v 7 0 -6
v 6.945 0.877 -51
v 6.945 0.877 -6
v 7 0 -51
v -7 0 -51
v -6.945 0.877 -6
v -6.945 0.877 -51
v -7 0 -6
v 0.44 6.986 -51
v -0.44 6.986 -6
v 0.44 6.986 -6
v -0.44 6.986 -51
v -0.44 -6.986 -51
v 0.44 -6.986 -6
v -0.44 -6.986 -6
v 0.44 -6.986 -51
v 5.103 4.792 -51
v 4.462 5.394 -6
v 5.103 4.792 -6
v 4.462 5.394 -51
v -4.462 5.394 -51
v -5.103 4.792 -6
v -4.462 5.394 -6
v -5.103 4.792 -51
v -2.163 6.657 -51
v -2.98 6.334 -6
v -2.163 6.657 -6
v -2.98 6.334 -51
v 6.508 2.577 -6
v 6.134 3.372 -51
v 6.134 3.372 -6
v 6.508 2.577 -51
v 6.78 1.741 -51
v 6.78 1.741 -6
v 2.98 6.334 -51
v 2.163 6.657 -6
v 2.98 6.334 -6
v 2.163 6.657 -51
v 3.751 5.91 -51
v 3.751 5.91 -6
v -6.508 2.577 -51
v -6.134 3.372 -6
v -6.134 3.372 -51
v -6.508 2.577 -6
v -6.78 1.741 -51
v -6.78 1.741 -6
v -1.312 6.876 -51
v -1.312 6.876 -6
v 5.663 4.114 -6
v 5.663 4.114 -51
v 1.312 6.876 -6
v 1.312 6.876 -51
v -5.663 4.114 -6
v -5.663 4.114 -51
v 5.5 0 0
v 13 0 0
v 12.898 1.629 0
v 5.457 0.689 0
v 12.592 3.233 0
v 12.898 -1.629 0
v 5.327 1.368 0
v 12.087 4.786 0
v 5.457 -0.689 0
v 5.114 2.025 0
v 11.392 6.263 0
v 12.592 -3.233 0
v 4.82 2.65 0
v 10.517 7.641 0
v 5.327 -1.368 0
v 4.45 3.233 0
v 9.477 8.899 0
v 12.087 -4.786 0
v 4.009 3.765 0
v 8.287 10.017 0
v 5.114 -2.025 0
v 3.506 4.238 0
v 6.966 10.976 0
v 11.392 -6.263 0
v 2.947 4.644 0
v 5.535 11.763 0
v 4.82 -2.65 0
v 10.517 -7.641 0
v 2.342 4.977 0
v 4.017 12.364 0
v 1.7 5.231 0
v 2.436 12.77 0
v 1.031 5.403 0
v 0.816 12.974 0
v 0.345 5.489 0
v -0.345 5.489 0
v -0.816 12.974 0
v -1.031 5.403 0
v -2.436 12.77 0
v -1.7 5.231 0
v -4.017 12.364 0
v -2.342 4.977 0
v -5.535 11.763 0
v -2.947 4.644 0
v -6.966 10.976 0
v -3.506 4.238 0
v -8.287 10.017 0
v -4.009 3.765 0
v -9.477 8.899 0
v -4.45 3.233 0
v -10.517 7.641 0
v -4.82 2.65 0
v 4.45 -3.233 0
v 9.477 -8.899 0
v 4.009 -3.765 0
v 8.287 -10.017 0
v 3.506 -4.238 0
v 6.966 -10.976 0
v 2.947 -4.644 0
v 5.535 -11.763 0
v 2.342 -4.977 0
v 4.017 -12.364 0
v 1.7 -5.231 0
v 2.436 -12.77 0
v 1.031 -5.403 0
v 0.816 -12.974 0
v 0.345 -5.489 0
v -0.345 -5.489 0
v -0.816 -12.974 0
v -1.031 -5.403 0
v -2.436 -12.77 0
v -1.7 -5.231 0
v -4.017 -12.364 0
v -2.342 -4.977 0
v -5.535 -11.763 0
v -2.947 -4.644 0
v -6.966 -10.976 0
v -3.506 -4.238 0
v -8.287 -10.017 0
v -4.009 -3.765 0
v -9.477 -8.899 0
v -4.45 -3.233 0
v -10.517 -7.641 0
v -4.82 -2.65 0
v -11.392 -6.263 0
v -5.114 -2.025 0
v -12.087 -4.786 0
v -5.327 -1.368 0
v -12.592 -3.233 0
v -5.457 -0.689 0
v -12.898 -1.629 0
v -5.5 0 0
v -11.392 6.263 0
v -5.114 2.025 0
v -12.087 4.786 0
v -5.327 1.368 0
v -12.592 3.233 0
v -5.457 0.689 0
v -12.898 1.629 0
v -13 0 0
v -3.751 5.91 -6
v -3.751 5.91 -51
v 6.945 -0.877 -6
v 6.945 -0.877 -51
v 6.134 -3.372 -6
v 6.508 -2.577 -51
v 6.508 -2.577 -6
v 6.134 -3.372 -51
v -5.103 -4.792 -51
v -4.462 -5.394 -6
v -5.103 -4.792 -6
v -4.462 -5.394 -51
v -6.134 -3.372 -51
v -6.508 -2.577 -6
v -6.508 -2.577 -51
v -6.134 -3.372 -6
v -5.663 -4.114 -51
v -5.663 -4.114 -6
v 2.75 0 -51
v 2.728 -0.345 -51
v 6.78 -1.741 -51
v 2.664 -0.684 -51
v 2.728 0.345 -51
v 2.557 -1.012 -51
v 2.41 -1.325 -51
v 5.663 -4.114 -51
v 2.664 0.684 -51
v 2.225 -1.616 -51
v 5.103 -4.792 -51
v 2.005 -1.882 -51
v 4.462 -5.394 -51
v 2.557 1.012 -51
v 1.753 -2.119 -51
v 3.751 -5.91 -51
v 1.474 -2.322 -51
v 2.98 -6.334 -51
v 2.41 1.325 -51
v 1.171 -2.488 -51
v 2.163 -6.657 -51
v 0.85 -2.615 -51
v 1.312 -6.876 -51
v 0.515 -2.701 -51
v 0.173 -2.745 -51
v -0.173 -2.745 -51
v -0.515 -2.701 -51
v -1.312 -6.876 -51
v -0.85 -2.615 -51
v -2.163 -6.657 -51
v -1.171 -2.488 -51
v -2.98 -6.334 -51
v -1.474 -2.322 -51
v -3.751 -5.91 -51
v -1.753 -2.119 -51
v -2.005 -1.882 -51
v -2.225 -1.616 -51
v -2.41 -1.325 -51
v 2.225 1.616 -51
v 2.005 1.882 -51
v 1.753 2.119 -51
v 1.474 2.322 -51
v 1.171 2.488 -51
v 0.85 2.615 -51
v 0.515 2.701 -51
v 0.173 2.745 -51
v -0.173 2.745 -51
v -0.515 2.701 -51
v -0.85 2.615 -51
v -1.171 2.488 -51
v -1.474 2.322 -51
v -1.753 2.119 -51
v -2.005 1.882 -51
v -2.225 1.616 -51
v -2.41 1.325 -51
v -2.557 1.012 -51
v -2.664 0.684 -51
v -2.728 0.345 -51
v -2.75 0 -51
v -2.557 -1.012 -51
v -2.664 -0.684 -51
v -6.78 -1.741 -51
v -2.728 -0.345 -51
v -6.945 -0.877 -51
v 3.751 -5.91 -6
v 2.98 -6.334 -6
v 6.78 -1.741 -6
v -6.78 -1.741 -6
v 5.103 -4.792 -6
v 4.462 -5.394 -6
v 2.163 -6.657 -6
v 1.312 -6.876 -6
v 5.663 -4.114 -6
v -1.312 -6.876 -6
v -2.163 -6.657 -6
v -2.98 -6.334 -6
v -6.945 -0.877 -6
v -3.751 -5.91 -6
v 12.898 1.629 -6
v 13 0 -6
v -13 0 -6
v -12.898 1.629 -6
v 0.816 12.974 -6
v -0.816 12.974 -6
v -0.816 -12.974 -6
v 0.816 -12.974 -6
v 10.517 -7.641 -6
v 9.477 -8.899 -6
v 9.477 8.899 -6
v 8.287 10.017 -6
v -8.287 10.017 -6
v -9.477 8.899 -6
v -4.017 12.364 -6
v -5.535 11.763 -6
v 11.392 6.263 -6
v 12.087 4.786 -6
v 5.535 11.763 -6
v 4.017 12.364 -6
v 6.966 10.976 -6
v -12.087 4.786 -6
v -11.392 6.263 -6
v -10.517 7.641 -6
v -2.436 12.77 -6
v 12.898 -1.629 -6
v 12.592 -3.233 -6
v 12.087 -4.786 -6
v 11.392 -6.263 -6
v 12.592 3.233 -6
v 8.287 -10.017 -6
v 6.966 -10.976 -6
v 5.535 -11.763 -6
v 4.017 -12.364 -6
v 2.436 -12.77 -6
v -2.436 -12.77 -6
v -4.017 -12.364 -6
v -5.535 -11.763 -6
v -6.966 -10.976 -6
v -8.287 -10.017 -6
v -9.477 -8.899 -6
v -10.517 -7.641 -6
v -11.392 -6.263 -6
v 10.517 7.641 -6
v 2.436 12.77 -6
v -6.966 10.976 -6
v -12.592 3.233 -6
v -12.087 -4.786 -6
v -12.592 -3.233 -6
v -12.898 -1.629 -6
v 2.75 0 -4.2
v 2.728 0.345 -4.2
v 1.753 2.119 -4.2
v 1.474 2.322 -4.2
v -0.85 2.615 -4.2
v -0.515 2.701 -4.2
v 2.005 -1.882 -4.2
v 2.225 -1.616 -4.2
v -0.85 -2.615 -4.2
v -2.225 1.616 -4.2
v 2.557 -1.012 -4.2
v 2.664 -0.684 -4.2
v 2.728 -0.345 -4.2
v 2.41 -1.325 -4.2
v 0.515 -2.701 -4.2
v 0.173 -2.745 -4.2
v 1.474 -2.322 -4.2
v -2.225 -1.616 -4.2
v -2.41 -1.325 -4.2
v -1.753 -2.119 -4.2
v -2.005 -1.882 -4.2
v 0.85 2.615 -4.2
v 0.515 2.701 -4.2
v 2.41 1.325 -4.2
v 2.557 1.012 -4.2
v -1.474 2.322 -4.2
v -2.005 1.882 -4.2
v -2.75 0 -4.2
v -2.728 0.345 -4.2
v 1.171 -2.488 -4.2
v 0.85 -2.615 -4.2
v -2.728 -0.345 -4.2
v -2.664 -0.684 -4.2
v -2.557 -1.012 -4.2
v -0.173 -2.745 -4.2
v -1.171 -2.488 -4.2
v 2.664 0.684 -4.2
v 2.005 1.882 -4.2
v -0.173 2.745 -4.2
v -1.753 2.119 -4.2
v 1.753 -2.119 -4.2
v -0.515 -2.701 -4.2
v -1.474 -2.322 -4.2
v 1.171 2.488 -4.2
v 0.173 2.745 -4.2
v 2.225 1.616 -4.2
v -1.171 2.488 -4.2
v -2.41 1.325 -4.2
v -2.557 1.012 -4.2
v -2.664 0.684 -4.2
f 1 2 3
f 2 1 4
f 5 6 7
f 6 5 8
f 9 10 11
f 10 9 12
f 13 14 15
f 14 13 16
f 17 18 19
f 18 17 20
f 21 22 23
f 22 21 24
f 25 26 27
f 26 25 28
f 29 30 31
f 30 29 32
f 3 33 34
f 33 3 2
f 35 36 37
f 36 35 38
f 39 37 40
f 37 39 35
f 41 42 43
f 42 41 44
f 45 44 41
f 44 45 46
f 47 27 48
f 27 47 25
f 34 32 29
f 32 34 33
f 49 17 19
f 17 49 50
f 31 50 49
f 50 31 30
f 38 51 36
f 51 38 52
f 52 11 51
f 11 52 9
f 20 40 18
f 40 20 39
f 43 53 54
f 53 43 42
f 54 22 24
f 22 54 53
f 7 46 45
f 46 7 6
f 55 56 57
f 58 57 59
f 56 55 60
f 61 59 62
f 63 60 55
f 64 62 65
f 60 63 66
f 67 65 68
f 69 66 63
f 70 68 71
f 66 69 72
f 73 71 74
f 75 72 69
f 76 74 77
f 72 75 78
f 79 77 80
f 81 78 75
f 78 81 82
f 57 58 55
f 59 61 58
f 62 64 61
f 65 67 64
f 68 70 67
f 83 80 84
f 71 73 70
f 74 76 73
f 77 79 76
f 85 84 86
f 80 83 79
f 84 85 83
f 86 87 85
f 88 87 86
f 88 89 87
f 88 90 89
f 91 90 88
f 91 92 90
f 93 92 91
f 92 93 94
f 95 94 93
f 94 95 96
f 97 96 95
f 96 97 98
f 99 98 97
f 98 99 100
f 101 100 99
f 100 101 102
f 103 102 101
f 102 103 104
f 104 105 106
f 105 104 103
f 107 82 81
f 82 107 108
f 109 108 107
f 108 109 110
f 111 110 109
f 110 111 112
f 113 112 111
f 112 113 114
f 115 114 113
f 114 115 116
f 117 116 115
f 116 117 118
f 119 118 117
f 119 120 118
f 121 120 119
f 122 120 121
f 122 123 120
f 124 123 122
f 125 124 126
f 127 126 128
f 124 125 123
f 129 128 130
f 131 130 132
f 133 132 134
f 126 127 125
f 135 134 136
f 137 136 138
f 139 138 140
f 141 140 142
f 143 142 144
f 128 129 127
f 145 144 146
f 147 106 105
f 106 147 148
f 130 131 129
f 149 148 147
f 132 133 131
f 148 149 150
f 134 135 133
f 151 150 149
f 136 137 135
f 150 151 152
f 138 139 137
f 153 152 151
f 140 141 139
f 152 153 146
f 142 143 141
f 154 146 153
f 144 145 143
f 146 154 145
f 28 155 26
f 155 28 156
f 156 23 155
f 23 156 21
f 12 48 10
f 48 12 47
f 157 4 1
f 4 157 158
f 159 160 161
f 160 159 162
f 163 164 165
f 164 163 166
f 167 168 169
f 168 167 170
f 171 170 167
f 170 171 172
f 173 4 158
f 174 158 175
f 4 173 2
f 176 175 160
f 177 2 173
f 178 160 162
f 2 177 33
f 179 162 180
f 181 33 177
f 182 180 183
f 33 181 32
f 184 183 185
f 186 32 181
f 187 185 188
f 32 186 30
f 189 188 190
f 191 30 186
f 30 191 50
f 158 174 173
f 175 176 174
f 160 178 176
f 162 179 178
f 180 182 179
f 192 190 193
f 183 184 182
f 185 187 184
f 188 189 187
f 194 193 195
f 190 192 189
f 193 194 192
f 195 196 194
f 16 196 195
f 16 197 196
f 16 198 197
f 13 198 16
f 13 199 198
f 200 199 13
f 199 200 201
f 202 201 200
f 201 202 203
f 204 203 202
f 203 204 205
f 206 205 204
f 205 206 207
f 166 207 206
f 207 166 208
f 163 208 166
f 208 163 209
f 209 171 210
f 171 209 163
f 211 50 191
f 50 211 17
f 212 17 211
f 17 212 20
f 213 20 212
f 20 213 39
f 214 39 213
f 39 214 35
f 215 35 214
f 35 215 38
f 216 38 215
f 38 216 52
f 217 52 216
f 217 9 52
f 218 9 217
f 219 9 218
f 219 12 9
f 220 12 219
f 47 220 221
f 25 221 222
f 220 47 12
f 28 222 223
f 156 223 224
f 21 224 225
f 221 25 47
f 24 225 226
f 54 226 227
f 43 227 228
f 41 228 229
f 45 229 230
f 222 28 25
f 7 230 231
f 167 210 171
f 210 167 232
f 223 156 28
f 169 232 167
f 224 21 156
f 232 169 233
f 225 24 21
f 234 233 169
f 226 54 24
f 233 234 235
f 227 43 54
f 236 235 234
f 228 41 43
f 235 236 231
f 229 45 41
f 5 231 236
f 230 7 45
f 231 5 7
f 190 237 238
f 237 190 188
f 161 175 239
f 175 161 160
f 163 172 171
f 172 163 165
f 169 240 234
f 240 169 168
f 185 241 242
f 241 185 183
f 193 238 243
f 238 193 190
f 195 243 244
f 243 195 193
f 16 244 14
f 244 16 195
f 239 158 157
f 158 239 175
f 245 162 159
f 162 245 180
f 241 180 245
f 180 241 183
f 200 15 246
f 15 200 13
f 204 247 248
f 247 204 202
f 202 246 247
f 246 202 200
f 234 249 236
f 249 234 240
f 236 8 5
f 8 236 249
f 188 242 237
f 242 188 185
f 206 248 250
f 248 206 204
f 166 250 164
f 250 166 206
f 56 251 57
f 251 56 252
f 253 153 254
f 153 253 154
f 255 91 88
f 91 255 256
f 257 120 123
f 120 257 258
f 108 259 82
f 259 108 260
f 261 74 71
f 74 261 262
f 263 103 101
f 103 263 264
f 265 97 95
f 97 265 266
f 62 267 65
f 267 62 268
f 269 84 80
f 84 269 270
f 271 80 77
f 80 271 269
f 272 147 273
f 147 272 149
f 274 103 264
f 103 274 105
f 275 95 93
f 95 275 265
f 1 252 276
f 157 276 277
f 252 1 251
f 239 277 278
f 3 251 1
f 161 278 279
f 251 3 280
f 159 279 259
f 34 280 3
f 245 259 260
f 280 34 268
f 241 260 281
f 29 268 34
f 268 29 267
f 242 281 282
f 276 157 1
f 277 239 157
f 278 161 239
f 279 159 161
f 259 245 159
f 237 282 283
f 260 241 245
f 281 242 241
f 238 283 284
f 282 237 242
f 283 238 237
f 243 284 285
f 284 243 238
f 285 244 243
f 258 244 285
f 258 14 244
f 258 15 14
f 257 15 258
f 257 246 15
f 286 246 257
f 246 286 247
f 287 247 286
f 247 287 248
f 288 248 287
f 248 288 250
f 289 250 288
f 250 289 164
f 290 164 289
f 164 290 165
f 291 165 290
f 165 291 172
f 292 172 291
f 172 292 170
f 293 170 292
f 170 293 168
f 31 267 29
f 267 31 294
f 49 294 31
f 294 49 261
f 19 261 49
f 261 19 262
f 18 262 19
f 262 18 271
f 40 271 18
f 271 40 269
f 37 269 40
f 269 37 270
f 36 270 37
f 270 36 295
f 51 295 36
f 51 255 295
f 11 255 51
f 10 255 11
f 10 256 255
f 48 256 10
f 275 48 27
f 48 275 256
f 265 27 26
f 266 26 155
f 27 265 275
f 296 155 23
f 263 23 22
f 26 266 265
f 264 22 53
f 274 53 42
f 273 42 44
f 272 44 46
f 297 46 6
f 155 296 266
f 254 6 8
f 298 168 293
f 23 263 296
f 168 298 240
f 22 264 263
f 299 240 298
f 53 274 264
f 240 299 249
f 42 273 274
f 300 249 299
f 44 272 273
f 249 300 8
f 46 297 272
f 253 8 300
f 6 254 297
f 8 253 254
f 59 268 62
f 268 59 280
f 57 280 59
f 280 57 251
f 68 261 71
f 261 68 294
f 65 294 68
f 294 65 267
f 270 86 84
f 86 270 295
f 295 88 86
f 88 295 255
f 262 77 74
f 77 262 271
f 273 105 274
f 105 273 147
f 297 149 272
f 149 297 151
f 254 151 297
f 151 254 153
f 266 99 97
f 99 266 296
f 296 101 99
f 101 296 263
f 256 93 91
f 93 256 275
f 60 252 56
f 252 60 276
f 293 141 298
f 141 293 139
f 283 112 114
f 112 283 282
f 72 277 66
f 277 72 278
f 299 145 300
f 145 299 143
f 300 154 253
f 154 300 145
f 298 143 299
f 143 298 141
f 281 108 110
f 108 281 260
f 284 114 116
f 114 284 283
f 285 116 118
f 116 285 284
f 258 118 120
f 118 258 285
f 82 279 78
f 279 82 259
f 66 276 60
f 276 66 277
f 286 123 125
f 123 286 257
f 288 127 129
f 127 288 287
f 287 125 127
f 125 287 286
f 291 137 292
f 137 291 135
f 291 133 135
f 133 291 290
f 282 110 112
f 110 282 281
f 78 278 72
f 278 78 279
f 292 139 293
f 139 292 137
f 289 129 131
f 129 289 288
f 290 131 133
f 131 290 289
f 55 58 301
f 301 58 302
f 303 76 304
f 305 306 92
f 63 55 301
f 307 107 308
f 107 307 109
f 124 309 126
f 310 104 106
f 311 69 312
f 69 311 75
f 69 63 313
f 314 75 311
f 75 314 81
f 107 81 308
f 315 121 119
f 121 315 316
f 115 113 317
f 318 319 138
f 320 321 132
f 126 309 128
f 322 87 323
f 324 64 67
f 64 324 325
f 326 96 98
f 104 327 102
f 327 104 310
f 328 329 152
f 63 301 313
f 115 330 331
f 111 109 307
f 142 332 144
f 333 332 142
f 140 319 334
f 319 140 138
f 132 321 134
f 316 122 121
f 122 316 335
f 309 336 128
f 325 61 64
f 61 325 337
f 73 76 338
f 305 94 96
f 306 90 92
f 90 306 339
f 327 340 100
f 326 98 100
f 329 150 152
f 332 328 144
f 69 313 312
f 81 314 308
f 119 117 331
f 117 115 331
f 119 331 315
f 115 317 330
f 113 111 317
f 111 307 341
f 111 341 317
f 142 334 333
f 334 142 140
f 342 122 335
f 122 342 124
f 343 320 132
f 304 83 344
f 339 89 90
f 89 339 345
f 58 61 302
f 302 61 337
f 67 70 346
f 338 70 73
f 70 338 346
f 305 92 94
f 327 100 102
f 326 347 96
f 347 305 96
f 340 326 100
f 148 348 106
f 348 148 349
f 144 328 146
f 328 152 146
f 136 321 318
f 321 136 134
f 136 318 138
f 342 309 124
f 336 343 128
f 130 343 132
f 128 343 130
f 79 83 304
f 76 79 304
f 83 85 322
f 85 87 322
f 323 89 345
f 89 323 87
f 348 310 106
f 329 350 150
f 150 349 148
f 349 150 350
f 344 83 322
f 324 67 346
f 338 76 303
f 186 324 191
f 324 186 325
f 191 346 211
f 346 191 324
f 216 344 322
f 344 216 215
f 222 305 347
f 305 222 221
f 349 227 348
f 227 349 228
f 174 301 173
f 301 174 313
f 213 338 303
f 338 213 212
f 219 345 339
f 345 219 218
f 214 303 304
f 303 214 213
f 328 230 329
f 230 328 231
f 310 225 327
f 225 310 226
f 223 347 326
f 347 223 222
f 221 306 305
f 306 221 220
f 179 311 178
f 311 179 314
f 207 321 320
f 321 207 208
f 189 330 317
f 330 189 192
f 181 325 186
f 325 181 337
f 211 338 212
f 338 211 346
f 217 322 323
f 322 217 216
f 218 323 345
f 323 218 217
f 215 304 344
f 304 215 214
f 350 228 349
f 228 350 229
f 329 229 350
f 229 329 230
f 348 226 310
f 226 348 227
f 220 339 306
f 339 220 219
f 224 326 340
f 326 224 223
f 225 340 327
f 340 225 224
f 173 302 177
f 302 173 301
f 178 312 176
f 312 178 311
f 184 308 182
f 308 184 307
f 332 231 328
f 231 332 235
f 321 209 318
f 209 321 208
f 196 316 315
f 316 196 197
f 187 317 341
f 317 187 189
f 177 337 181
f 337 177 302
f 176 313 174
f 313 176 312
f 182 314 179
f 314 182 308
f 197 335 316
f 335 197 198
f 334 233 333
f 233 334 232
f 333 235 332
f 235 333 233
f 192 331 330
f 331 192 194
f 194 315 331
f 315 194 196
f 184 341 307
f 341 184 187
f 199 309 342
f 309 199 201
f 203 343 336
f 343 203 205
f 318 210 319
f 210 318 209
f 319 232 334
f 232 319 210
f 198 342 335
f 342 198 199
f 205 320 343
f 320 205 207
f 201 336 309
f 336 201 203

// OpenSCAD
$fn = 50;


difference() {
	union() {
		translate(v = [0, 0, -51.0000000000]) {
			cylinder(h = 51, r = 7.0000000000);
		}
		translate(v = [0, 0, -6.0000000000]) {
			cylinder(h = 6, r = 13.0000000000);
		}
	}
	union() {
		translate(v = [0, 0, 0]) {
			rotate(a = [0, 0, 0]) {
				difference() {
					union() {
						#translate(v = [0, 0, -51.0000000000]) {
							cylinder(h = 51, r = 2.2500000000);
						}
						#translate(v = [0, 0, -4.2000000000]) {
							cylinder(h = 4.2000000000, r = 7.0000000000, r1 = 2.7500000000, r2 = 5.5000000000);
						}
						#translate(v = [0, 0, -51.0000000000]) {
							cylinder(h = 51, r = 2.7500000000);
						}
						#translate(v = [0, 0, -51.0000000000]) {
							cylinder(h = 51, r = 2.2500000000);
						}
					}
					union();
				}
			}
		}
	}
}
